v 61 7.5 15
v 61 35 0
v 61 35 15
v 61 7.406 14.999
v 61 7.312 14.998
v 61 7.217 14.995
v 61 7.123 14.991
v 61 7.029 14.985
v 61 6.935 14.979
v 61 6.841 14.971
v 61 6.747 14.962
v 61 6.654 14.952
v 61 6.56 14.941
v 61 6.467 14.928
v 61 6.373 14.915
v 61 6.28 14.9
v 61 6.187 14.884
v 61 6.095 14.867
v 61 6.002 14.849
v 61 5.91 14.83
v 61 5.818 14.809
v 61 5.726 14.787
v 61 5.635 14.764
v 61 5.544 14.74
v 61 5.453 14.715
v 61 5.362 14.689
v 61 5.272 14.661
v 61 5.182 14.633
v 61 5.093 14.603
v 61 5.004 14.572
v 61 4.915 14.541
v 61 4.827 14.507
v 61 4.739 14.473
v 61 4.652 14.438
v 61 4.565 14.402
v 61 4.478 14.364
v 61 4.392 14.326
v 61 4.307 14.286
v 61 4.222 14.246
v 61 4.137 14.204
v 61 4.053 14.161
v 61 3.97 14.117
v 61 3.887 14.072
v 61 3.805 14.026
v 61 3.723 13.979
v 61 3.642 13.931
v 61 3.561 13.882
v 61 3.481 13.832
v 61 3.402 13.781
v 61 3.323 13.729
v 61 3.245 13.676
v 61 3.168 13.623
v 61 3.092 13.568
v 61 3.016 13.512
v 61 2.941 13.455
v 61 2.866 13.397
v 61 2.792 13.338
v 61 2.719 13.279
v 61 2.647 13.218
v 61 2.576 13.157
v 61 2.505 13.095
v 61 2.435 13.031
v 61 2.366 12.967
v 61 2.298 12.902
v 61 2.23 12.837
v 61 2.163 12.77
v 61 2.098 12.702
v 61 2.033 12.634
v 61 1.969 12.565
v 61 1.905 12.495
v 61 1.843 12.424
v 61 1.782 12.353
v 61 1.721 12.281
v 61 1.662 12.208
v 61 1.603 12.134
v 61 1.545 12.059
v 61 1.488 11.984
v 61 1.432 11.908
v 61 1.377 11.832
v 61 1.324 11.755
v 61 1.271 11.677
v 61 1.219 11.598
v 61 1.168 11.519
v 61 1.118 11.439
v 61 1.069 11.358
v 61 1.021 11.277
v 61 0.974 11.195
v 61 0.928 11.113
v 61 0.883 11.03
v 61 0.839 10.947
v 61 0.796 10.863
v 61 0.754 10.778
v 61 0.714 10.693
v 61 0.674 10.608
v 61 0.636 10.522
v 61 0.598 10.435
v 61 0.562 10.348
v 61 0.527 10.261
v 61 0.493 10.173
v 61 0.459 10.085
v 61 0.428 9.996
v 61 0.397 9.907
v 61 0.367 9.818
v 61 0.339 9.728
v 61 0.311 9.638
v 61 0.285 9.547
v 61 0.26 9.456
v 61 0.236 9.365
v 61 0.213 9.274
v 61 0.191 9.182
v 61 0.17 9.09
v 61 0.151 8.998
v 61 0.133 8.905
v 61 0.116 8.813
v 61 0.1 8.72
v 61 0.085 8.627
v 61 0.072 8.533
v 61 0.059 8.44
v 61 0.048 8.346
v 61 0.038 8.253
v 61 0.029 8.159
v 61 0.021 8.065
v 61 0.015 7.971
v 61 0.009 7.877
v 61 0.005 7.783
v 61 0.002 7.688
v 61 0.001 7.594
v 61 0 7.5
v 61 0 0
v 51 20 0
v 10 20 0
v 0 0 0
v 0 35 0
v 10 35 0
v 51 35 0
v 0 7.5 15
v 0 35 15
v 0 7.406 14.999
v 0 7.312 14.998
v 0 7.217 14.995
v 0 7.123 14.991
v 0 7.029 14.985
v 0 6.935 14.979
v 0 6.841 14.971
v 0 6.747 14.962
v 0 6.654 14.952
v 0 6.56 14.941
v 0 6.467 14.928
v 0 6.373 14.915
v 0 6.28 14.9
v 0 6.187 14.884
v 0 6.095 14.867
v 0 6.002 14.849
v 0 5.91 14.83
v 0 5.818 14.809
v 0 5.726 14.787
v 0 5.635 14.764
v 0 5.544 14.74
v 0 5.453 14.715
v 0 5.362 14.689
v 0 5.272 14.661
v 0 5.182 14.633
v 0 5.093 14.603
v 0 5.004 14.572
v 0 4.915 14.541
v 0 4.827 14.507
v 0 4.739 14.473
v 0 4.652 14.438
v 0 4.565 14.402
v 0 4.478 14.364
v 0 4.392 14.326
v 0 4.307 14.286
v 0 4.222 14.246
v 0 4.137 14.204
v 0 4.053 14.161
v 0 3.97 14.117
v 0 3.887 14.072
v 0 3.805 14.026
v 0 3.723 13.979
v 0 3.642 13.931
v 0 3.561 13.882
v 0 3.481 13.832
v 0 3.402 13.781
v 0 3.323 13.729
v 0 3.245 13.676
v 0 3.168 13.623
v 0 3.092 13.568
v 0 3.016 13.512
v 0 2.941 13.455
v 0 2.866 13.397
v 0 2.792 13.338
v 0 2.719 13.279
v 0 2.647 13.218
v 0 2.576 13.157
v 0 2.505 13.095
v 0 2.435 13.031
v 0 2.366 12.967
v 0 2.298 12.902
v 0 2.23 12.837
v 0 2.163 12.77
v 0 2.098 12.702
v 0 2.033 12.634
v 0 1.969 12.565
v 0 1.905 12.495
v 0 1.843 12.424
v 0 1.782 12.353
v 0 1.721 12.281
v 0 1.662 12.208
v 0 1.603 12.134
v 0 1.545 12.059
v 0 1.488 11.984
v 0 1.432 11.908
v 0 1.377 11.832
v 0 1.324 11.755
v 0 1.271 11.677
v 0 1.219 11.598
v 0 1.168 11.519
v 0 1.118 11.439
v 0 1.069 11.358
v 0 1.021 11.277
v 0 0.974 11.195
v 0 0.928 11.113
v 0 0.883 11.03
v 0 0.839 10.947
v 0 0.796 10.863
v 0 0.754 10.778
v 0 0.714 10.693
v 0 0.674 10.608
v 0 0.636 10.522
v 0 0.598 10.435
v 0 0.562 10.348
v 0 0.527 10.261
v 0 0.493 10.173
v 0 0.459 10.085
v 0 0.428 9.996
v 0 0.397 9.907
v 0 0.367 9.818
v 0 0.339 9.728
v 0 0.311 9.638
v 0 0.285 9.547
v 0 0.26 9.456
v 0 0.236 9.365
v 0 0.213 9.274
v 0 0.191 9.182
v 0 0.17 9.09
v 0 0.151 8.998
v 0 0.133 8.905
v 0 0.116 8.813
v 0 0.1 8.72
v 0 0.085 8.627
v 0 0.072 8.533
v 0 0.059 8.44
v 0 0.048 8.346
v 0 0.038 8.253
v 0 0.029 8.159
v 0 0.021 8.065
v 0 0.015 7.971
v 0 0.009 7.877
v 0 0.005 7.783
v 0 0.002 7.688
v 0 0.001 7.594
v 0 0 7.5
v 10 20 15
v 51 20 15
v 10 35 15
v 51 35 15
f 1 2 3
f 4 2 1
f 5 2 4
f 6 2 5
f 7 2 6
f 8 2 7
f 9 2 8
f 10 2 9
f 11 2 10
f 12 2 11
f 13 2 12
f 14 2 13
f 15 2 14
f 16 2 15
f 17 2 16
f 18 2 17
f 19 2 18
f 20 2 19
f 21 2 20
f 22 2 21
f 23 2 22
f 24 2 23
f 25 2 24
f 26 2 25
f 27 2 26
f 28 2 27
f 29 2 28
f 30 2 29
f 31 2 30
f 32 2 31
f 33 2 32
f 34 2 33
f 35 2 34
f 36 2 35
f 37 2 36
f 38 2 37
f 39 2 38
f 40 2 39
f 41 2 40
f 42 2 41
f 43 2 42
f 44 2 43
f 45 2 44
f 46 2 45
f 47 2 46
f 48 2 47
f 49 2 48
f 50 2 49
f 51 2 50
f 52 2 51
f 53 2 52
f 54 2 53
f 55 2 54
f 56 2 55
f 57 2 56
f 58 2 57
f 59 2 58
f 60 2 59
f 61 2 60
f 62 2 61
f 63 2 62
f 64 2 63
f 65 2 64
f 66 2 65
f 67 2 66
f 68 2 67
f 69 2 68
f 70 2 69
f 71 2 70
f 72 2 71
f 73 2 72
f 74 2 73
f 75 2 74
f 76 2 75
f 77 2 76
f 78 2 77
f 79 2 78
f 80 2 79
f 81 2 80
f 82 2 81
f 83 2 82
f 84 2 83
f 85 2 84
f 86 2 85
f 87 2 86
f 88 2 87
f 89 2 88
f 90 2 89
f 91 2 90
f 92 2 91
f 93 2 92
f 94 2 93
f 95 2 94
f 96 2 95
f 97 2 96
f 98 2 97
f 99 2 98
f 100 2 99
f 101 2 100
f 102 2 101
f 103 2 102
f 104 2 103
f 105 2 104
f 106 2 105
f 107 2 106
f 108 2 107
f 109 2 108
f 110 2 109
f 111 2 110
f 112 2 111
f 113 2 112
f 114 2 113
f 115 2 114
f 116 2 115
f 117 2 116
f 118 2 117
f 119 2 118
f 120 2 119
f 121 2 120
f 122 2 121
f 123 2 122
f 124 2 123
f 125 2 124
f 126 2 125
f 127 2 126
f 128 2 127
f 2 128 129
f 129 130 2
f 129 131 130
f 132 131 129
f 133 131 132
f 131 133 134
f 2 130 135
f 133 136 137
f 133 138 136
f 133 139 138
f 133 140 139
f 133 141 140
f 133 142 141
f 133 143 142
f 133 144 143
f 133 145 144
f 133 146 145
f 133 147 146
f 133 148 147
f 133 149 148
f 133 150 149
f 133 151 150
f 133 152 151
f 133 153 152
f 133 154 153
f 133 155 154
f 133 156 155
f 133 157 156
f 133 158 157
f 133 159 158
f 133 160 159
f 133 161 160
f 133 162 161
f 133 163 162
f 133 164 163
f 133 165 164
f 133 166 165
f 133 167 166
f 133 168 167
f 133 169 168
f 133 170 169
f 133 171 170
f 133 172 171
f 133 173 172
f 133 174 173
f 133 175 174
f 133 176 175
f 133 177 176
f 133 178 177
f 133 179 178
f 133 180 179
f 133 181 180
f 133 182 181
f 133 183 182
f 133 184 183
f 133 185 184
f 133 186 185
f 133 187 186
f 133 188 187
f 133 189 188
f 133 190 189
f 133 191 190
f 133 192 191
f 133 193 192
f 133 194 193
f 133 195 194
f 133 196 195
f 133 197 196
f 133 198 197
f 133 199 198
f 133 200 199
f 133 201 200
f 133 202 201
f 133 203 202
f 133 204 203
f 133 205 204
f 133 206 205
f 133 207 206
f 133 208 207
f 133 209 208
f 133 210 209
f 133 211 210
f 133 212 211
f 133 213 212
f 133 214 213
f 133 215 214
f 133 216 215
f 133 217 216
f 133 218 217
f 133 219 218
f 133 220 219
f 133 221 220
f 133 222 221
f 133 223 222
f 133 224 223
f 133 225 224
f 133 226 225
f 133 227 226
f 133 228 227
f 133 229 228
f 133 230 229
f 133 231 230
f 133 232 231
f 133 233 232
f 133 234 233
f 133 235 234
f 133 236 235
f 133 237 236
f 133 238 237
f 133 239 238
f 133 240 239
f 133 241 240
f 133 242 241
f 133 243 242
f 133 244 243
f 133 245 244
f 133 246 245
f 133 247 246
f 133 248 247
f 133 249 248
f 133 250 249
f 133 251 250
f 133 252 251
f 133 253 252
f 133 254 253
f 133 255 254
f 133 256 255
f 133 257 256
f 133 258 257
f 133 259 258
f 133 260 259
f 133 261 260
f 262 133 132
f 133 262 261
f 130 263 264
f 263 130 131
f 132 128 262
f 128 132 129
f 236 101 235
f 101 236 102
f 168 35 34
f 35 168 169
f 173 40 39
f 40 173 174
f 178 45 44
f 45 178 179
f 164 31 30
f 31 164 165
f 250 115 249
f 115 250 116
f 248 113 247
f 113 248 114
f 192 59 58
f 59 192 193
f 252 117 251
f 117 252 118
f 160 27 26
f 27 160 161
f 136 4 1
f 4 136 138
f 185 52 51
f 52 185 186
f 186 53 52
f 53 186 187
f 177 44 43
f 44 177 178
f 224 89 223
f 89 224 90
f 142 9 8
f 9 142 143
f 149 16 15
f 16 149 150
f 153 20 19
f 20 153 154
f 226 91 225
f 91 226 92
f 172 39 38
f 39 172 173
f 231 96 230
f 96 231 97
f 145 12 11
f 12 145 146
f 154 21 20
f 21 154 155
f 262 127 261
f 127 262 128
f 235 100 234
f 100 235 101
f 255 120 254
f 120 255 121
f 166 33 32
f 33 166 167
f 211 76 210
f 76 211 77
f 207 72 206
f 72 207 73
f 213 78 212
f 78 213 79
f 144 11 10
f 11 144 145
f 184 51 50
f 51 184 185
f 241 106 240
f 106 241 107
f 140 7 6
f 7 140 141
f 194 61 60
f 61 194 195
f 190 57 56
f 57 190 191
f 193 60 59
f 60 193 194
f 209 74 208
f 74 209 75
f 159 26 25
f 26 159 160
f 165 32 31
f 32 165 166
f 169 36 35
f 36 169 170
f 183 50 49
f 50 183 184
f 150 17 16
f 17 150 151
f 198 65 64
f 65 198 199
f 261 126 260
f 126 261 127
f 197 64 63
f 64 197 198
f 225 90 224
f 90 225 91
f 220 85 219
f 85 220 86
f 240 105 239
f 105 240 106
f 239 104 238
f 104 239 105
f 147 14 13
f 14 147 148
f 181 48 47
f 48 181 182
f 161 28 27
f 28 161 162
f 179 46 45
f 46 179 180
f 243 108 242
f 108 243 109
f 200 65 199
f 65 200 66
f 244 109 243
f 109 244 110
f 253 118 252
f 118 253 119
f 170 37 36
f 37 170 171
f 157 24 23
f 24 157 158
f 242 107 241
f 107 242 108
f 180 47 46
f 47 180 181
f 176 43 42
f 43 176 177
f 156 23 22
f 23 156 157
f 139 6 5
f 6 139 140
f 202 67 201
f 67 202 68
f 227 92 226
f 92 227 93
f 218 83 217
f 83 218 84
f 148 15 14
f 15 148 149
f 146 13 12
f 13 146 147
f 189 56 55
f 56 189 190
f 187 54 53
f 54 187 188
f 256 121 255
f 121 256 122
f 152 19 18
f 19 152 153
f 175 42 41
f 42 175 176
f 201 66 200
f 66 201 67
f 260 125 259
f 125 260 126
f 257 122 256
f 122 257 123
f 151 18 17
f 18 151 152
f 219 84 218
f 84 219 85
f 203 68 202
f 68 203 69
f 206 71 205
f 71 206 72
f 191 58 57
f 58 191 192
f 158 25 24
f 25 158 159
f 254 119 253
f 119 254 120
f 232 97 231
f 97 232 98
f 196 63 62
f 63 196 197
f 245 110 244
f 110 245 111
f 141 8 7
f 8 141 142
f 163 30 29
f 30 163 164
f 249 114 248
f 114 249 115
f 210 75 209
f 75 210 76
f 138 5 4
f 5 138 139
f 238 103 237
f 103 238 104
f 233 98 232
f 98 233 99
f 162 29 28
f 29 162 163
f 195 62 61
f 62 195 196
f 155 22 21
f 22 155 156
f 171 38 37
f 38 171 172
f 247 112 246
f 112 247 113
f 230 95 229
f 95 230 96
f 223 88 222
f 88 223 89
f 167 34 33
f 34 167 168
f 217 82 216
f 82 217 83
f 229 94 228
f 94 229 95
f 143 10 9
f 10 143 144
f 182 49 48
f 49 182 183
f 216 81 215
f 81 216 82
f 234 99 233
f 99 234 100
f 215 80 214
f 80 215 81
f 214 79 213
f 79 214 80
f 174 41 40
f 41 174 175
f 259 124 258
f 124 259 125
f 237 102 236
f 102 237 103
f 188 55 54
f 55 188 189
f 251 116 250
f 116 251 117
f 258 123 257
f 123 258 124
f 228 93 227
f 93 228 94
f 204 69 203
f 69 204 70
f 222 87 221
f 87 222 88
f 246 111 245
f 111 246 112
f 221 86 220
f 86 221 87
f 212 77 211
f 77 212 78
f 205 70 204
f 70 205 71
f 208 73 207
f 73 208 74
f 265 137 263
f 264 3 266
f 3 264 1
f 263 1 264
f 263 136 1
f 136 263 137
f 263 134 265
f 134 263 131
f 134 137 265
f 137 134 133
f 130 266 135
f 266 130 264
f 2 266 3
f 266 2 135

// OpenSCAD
$fn = 500;
width = 61;
height = 15;
depth = 20;
half = height / 2;
sideWidth = 10;
sideLength = 15;

cube([width, depth, height / 2]);
translate([0, half, half])
    rotate([0, 90, 0])
        cylinder(width, half, half);
translate([0, half, half])
    cube([width, depth - half, half]);
translate([0, depth, 0])
    cube([sideWidth, sideLength, height]);
translate([width - sideWidth, depth, 0])
    cube([sideWidth, sideLength, height]);
